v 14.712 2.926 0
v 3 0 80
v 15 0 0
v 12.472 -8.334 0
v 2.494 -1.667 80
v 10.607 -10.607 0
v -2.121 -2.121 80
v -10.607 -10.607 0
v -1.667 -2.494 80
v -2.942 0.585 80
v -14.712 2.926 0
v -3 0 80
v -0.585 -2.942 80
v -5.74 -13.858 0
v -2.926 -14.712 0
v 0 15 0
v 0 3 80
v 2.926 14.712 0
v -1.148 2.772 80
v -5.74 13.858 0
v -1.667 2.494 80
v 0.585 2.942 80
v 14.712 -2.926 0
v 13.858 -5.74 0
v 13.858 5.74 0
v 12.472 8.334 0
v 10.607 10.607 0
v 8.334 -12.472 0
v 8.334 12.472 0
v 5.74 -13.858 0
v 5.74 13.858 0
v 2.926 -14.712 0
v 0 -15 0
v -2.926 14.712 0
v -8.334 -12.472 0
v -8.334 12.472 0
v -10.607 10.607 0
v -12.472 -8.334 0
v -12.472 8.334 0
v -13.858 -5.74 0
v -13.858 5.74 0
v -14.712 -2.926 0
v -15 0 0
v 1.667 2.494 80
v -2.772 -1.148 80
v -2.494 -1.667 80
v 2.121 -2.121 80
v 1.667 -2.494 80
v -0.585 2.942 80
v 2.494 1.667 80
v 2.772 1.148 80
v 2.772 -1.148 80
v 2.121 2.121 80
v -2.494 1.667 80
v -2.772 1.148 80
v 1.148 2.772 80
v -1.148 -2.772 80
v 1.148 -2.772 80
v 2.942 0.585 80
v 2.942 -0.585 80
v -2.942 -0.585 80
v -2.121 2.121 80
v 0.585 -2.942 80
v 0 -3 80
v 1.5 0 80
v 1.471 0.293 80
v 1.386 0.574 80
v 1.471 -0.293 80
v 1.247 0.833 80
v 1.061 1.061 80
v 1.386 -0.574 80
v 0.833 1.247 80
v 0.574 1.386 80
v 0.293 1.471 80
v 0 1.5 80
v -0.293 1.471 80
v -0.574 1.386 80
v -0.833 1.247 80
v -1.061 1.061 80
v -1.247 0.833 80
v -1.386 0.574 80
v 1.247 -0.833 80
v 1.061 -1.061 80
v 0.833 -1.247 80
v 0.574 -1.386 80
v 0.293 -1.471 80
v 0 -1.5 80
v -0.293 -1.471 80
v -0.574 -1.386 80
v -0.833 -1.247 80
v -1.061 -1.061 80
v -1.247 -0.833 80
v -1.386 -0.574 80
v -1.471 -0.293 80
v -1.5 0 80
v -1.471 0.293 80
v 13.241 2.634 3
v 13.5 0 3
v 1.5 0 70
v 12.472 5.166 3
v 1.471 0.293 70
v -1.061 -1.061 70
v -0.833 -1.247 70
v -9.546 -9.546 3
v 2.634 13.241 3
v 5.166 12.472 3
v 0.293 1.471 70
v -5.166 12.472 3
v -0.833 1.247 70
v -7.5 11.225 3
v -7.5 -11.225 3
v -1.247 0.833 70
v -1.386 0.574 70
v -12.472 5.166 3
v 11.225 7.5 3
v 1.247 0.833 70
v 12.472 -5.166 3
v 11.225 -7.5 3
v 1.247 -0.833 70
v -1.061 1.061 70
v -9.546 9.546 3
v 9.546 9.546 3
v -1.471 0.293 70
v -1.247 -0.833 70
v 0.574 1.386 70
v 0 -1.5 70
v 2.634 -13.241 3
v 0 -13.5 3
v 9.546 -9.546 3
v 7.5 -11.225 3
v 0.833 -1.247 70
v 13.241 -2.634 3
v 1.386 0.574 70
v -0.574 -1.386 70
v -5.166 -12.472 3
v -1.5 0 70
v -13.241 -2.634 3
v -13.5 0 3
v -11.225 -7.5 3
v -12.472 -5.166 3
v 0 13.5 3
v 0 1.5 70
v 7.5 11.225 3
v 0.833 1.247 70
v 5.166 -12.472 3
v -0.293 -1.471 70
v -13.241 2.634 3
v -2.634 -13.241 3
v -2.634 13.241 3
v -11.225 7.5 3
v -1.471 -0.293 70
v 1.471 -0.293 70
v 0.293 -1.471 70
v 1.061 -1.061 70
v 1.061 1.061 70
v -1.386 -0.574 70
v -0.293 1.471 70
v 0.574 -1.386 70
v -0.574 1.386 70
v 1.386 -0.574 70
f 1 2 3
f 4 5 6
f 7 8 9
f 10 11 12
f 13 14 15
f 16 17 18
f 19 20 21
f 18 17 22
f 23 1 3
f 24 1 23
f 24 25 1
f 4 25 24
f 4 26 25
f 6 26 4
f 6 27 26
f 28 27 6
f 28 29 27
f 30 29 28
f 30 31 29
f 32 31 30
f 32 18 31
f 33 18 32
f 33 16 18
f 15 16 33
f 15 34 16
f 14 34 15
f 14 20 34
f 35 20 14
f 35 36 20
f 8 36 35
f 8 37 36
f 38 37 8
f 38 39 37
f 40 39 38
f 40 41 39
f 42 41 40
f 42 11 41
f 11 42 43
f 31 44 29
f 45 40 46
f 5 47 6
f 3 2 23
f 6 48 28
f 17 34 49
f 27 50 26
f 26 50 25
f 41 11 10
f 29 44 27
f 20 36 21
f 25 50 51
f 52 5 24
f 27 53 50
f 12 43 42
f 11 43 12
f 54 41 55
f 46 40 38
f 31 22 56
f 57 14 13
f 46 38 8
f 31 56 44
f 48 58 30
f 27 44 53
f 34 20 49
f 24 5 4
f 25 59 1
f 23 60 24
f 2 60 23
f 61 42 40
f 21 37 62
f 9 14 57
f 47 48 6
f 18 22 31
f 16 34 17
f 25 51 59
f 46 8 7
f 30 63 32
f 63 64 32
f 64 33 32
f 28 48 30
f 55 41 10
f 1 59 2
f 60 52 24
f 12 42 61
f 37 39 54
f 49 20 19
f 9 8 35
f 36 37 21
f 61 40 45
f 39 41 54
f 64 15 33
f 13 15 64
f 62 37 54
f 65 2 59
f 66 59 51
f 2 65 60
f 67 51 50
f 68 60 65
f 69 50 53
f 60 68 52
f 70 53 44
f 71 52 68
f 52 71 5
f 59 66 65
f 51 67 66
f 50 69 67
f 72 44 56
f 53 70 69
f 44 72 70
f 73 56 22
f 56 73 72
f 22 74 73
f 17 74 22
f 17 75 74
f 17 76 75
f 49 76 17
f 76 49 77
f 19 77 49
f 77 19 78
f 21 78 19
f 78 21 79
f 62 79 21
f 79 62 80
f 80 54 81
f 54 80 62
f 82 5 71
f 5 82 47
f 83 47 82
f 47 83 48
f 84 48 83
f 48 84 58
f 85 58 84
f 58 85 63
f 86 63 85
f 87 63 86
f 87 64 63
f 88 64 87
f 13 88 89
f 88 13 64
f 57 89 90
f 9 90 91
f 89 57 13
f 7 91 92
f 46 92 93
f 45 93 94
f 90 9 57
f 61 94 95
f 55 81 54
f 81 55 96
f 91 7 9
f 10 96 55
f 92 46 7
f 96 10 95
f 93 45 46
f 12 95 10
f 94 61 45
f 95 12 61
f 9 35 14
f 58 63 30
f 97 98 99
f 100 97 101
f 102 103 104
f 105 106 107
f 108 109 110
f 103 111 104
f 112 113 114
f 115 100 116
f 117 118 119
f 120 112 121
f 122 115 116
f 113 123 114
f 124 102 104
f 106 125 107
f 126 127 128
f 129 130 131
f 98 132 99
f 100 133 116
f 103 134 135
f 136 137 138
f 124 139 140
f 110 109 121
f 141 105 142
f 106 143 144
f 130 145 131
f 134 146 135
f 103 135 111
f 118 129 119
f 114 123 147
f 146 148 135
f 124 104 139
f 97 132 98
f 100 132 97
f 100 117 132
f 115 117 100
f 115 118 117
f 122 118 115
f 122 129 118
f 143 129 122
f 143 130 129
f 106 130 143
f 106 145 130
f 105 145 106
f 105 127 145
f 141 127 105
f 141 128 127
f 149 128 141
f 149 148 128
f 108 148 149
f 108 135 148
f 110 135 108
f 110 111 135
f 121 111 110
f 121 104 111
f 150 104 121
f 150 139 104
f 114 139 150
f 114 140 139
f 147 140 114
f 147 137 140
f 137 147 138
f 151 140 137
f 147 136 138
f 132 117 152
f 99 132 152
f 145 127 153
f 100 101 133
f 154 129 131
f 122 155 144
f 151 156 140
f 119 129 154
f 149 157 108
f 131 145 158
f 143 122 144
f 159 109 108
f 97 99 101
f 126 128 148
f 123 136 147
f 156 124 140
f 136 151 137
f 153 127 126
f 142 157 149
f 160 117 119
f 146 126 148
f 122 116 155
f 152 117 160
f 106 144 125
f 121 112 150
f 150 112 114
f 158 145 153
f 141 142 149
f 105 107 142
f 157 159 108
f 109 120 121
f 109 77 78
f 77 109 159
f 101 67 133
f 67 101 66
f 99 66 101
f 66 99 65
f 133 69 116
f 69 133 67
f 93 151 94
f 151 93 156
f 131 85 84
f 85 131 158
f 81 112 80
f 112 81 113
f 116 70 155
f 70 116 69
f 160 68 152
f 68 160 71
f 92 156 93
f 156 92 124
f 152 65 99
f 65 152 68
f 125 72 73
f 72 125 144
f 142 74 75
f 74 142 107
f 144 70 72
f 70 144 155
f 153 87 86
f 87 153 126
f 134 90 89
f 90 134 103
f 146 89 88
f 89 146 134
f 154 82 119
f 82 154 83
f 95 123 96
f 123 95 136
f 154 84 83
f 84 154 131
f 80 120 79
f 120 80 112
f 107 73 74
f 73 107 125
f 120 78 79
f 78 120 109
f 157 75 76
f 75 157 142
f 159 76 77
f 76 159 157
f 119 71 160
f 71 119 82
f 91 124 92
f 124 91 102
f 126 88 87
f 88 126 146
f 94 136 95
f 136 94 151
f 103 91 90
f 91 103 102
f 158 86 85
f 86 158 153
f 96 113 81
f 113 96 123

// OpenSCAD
// Eiszapfen-Anhänger für Kristallhöhle
// Druck stehend auf der breiten Basis (z=0), Spitze zeigt nach +Z
// Vertikales Loch in der Spitze für Aufhängeband (keine Überhänge)
// Hohlwand ab 3 mm Höhe, massive Spitze für Loch-Stabilität

$fn = 32;

// Parameter
hoehe = 80;
durchmesser_basis = 30;
durchmesser_spitze = 6;        // Flache Spitze für Loch
wandstaerke = 1.5;
boden_dicke = 3;               // Massiver Boden für Auflage
massiv_spitze_laenge = 10;     // Massiver Bereich an der Spitze
loch_durchmesser = 3;          // Aufhängebohrung

module eiszapfen() {
    difference() {
        // Außenkontur: Kegelstumpf
        cylinder(h = hoehe, d1 = durchmesser_basis, d2 = durchmesser_spitze);

        // Hohlraum: beginnt nach Boden, endet vor massiver Spitze
        // Innendurchmesser Basis = Außen - 2*Wand
        // Innendurchmesser Spitze = Außenspitze - 2*Wand
        translate([0, 0, boden_dicke])
            cylinder(h = hoehe - boden_dicke - massiv_spitze_laenge,
                     d1 = durchmesser_basis - 2 * wandstaerke,
                     d2 = durchmesser_spitze - 2 * wandstaerke);

        // Aufhängebohrung: vertikal durch die massive Spitze
        // Startet etwas tiefer, um sauber durch die Wand zu gehen
        translate([0, 0, hoehe - massiv_spitze_laenge - 2])
            cylinder(h = massiv_spitze_laenge + 4, d = loch_durchmesser, center = false);
    }
}

eiszapfen();
